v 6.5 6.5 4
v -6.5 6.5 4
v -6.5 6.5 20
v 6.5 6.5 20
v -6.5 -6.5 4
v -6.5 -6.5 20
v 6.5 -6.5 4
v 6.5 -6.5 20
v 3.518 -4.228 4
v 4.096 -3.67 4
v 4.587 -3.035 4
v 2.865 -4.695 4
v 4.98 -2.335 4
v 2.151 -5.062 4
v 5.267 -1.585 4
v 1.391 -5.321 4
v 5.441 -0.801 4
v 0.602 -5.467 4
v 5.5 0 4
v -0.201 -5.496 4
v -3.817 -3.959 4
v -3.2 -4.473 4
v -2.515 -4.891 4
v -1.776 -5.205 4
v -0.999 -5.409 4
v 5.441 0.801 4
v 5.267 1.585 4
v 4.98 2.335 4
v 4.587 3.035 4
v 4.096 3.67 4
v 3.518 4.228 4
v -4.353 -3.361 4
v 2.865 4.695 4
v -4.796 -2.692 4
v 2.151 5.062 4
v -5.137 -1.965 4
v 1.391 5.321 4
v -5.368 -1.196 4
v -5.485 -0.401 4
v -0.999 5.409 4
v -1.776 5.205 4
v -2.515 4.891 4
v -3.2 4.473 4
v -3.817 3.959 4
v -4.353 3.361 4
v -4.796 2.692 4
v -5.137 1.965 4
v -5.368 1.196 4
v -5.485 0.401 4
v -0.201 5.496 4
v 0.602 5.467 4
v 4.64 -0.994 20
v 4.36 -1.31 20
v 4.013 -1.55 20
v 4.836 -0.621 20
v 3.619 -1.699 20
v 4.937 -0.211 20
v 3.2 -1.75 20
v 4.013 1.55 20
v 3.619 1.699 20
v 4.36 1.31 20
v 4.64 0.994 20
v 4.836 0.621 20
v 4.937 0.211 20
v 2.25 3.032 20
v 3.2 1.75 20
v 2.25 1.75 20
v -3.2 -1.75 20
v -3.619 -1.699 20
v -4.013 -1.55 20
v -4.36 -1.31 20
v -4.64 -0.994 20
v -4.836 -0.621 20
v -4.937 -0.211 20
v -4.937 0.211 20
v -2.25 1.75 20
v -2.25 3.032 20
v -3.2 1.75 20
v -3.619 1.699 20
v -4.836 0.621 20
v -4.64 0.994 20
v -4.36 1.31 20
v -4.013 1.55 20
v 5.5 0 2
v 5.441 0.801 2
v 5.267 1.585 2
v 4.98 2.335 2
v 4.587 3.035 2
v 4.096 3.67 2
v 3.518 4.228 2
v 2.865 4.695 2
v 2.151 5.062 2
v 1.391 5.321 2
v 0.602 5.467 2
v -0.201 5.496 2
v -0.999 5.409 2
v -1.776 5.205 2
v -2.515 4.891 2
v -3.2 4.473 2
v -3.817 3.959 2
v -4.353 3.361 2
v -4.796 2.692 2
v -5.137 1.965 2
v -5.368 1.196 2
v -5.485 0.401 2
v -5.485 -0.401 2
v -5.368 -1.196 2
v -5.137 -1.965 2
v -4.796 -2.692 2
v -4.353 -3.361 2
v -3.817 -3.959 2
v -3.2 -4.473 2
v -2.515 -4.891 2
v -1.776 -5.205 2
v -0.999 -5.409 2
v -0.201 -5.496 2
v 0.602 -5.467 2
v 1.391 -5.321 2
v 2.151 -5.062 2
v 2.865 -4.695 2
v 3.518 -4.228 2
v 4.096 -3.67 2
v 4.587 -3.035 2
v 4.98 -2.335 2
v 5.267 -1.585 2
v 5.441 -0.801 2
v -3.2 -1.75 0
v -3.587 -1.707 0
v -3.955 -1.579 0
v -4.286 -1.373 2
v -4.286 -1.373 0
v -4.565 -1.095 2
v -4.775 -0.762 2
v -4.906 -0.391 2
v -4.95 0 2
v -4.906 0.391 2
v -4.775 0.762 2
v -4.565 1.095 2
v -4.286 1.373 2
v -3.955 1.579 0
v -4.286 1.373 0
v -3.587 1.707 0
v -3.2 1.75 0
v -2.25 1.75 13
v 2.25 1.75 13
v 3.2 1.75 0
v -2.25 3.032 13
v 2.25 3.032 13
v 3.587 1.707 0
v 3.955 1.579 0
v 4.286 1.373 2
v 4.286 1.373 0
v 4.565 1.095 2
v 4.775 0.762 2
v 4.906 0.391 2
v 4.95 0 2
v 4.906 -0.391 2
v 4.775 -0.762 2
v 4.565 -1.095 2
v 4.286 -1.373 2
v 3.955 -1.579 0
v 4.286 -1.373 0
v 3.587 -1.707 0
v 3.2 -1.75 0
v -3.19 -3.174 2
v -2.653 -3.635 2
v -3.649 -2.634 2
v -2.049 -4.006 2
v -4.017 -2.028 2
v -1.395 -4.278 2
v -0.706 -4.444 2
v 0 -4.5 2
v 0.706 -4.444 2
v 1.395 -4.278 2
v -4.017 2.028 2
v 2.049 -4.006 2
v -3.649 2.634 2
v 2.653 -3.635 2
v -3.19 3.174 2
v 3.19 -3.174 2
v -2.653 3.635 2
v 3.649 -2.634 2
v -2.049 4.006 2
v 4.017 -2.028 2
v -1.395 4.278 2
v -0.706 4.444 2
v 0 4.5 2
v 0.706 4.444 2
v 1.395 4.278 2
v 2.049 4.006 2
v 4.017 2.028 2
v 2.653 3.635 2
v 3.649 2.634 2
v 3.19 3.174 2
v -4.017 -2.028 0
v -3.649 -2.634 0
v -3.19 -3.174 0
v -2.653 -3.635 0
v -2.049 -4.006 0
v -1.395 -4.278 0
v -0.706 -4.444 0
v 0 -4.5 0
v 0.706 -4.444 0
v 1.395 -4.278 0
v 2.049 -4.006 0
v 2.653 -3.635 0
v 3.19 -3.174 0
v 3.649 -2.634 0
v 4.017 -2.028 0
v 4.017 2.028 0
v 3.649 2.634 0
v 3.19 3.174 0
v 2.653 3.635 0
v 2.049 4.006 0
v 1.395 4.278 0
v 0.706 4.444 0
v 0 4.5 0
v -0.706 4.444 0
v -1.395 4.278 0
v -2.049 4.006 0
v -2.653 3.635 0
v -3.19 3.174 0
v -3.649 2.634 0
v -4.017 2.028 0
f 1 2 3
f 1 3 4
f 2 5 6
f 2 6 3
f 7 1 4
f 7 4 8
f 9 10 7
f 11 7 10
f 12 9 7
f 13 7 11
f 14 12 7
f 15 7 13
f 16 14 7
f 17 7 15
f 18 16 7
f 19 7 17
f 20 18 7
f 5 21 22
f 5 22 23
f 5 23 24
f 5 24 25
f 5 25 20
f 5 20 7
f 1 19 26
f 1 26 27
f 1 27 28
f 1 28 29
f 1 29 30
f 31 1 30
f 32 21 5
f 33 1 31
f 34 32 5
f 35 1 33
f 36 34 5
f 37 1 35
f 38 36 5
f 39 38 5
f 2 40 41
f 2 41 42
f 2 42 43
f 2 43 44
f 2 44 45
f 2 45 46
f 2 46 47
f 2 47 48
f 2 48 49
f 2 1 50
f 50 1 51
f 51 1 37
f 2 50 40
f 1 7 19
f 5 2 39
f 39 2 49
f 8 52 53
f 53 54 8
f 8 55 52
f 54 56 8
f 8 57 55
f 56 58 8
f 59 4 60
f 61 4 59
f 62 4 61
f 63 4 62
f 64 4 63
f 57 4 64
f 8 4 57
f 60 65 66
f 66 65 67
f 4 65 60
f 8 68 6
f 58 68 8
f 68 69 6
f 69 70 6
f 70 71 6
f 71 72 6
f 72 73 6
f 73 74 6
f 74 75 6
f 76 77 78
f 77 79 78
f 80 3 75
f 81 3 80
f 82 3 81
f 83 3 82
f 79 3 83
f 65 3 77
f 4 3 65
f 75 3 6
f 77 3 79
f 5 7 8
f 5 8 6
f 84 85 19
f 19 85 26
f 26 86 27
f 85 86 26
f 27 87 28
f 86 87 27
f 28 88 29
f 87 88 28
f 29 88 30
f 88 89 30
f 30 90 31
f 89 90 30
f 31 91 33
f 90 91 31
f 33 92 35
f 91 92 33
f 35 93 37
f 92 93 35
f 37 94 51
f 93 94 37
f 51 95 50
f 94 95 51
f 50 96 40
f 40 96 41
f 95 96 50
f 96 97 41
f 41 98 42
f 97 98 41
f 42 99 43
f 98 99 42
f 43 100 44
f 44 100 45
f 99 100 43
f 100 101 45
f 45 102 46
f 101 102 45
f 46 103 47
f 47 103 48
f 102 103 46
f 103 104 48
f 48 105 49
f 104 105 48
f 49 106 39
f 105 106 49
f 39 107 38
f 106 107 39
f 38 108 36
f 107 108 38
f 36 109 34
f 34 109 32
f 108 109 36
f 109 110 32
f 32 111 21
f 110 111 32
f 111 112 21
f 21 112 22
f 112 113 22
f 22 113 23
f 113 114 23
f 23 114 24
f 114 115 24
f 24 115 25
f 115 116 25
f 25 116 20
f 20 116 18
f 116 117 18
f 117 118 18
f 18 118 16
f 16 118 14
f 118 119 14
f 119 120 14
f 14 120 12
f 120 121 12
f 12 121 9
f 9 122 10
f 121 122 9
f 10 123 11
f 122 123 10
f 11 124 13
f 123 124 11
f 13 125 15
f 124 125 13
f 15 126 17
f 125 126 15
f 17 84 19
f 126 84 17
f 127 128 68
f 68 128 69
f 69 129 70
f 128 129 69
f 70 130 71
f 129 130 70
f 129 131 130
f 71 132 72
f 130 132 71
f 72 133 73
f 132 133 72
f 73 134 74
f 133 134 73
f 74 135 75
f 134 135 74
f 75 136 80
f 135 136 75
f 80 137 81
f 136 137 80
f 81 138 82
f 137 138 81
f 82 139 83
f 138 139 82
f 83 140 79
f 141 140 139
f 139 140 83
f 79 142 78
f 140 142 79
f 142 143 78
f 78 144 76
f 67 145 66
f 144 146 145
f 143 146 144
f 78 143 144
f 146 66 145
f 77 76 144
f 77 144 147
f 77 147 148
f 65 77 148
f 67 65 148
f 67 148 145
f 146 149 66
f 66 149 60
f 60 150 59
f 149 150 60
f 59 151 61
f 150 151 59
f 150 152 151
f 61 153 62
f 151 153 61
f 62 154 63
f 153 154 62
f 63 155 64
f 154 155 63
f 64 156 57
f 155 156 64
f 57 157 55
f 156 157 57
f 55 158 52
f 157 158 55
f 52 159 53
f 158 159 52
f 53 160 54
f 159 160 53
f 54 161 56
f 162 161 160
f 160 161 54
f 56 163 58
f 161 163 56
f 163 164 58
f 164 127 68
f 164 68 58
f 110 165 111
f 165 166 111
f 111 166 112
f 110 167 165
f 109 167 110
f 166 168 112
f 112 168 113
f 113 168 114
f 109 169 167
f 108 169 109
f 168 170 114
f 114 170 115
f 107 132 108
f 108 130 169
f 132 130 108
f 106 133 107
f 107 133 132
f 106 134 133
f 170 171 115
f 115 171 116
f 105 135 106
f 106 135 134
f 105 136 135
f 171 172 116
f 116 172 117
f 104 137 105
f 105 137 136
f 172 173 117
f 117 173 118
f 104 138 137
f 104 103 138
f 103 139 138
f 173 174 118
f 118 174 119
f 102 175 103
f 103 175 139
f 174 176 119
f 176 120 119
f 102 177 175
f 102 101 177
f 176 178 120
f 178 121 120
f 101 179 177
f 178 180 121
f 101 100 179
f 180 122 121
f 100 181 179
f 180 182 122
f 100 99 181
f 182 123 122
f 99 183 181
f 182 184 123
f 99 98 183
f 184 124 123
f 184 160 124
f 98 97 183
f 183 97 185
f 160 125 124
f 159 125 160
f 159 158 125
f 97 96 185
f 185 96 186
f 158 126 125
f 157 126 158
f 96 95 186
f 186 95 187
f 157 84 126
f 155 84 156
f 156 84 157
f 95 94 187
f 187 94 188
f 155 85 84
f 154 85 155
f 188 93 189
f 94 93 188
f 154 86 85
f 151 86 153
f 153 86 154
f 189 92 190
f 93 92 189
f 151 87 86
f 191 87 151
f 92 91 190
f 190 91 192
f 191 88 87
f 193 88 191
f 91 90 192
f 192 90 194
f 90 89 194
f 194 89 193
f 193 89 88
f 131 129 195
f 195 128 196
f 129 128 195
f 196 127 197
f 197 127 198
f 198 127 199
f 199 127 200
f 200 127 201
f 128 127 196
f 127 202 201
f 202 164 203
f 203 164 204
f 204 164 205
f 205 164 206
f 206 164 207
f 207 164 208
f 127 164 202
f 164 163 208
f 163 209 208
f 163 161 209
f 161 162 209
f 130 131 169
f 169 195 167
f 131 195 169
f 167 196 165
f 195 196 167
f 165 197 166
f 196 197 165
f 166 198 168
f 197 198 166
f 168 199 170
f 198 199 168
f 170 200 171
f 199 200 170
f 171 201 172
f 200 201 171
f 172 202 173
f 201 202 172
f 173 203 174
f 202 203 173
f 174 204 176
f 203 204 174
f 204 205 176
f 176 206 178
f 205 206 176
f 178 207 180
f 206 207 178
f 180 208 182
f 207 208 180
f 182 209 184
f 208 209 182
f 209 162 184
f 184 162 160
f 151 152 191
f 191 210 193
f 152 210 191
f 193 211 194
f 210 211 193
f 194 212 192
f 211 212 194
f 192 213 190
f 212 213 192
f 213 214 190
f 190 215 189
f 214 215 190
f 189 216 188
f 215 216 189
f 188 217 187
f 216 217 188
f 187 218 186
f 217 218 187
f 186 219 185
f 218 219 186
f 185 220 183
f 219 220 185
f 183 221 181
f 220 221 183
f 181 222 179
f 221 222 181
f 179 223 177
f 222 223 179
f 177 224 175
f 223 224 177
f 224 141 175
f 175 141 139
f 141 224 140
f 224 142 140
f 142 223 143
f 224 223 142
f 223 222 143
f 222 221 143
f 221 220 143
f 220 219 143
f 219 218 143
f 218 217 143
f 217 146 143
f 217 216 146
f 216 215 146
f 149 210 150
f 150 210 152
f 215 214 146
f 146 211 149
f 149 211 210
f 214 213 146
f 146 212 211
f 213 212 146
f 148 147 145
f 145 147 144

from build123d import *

# Parameters (mm, degrees)
SKETCH_R        = 4.5
PAD_DEPTH       = 2
SKETCH001_R     = 5.5
PAD001_DEPTH    = 2
SKETCH003_W     = 13
SKETCH003_H     = 13
PAD002_DEPTH    = 16
POCKET_DEPTH    = 20
SKETCH005_W     = 4.5
SKETCH005_H     = 2.303615
POCKET001_DEPTH = 7


with BuildPart() as part:
    # Sketch → Pad (new body)
    with BuildSketch(Plane.XY):
        Circle(SKETCH_R)
    extrude(amount=PAD_DEPTH)

    # Sketch001 (on Face3 of Pad) → Pad001 (join)
    with BuildSketch(Plane.XY.offset(2)):
        Circle(SKETCH001_R)
    extrude(amount=PAD001_DEPTH)

    # Sketch003 (on Face3 of Pad001) → Pad002 (join)
    with BuildSketch(Plane.XY.offset(4)):
        Rectangle(SKETCH003_W, SKETCH003_H)
    extrude(amount=PAD002_DEPTH)

    # Sketch004 (on Face10 of Pad002) → Pocket (cut)
    with BuildSketch(Plane(origin=(0, 0, 0), x_dir=(1, 0, 0), z_dir=(0, 0, -1))):
        with BuildLine():
            ThreePointArc((-3.2, 1.75), (-4.95, 0), (-3.2, -1.75))
            Line((-3.2, -1.75), (3.2, -1.75))
            ThreePointArc((3.2, -1.75), (4.95, 0), (3.2, 1.75))
            Line((-3.2, 1.75), (3.2, 1.75))
        make_face()
    extrude(amount=-POCKET_DEPTH, mode=Mode.SUBTRACT)

    # Sketch005 (on Face5 of Pocket) → Pocket001 (cut)
    with BuildSketch(Plane.XY.offset(20)):
        with Locations((0, 1.879977)):
            Rectangle(SKETCH005_W, SKETCH005_H)
    extrude(amount=-POCKET001_DEPTH, mode=Mode.SUBTRACT)


solid = part.part
